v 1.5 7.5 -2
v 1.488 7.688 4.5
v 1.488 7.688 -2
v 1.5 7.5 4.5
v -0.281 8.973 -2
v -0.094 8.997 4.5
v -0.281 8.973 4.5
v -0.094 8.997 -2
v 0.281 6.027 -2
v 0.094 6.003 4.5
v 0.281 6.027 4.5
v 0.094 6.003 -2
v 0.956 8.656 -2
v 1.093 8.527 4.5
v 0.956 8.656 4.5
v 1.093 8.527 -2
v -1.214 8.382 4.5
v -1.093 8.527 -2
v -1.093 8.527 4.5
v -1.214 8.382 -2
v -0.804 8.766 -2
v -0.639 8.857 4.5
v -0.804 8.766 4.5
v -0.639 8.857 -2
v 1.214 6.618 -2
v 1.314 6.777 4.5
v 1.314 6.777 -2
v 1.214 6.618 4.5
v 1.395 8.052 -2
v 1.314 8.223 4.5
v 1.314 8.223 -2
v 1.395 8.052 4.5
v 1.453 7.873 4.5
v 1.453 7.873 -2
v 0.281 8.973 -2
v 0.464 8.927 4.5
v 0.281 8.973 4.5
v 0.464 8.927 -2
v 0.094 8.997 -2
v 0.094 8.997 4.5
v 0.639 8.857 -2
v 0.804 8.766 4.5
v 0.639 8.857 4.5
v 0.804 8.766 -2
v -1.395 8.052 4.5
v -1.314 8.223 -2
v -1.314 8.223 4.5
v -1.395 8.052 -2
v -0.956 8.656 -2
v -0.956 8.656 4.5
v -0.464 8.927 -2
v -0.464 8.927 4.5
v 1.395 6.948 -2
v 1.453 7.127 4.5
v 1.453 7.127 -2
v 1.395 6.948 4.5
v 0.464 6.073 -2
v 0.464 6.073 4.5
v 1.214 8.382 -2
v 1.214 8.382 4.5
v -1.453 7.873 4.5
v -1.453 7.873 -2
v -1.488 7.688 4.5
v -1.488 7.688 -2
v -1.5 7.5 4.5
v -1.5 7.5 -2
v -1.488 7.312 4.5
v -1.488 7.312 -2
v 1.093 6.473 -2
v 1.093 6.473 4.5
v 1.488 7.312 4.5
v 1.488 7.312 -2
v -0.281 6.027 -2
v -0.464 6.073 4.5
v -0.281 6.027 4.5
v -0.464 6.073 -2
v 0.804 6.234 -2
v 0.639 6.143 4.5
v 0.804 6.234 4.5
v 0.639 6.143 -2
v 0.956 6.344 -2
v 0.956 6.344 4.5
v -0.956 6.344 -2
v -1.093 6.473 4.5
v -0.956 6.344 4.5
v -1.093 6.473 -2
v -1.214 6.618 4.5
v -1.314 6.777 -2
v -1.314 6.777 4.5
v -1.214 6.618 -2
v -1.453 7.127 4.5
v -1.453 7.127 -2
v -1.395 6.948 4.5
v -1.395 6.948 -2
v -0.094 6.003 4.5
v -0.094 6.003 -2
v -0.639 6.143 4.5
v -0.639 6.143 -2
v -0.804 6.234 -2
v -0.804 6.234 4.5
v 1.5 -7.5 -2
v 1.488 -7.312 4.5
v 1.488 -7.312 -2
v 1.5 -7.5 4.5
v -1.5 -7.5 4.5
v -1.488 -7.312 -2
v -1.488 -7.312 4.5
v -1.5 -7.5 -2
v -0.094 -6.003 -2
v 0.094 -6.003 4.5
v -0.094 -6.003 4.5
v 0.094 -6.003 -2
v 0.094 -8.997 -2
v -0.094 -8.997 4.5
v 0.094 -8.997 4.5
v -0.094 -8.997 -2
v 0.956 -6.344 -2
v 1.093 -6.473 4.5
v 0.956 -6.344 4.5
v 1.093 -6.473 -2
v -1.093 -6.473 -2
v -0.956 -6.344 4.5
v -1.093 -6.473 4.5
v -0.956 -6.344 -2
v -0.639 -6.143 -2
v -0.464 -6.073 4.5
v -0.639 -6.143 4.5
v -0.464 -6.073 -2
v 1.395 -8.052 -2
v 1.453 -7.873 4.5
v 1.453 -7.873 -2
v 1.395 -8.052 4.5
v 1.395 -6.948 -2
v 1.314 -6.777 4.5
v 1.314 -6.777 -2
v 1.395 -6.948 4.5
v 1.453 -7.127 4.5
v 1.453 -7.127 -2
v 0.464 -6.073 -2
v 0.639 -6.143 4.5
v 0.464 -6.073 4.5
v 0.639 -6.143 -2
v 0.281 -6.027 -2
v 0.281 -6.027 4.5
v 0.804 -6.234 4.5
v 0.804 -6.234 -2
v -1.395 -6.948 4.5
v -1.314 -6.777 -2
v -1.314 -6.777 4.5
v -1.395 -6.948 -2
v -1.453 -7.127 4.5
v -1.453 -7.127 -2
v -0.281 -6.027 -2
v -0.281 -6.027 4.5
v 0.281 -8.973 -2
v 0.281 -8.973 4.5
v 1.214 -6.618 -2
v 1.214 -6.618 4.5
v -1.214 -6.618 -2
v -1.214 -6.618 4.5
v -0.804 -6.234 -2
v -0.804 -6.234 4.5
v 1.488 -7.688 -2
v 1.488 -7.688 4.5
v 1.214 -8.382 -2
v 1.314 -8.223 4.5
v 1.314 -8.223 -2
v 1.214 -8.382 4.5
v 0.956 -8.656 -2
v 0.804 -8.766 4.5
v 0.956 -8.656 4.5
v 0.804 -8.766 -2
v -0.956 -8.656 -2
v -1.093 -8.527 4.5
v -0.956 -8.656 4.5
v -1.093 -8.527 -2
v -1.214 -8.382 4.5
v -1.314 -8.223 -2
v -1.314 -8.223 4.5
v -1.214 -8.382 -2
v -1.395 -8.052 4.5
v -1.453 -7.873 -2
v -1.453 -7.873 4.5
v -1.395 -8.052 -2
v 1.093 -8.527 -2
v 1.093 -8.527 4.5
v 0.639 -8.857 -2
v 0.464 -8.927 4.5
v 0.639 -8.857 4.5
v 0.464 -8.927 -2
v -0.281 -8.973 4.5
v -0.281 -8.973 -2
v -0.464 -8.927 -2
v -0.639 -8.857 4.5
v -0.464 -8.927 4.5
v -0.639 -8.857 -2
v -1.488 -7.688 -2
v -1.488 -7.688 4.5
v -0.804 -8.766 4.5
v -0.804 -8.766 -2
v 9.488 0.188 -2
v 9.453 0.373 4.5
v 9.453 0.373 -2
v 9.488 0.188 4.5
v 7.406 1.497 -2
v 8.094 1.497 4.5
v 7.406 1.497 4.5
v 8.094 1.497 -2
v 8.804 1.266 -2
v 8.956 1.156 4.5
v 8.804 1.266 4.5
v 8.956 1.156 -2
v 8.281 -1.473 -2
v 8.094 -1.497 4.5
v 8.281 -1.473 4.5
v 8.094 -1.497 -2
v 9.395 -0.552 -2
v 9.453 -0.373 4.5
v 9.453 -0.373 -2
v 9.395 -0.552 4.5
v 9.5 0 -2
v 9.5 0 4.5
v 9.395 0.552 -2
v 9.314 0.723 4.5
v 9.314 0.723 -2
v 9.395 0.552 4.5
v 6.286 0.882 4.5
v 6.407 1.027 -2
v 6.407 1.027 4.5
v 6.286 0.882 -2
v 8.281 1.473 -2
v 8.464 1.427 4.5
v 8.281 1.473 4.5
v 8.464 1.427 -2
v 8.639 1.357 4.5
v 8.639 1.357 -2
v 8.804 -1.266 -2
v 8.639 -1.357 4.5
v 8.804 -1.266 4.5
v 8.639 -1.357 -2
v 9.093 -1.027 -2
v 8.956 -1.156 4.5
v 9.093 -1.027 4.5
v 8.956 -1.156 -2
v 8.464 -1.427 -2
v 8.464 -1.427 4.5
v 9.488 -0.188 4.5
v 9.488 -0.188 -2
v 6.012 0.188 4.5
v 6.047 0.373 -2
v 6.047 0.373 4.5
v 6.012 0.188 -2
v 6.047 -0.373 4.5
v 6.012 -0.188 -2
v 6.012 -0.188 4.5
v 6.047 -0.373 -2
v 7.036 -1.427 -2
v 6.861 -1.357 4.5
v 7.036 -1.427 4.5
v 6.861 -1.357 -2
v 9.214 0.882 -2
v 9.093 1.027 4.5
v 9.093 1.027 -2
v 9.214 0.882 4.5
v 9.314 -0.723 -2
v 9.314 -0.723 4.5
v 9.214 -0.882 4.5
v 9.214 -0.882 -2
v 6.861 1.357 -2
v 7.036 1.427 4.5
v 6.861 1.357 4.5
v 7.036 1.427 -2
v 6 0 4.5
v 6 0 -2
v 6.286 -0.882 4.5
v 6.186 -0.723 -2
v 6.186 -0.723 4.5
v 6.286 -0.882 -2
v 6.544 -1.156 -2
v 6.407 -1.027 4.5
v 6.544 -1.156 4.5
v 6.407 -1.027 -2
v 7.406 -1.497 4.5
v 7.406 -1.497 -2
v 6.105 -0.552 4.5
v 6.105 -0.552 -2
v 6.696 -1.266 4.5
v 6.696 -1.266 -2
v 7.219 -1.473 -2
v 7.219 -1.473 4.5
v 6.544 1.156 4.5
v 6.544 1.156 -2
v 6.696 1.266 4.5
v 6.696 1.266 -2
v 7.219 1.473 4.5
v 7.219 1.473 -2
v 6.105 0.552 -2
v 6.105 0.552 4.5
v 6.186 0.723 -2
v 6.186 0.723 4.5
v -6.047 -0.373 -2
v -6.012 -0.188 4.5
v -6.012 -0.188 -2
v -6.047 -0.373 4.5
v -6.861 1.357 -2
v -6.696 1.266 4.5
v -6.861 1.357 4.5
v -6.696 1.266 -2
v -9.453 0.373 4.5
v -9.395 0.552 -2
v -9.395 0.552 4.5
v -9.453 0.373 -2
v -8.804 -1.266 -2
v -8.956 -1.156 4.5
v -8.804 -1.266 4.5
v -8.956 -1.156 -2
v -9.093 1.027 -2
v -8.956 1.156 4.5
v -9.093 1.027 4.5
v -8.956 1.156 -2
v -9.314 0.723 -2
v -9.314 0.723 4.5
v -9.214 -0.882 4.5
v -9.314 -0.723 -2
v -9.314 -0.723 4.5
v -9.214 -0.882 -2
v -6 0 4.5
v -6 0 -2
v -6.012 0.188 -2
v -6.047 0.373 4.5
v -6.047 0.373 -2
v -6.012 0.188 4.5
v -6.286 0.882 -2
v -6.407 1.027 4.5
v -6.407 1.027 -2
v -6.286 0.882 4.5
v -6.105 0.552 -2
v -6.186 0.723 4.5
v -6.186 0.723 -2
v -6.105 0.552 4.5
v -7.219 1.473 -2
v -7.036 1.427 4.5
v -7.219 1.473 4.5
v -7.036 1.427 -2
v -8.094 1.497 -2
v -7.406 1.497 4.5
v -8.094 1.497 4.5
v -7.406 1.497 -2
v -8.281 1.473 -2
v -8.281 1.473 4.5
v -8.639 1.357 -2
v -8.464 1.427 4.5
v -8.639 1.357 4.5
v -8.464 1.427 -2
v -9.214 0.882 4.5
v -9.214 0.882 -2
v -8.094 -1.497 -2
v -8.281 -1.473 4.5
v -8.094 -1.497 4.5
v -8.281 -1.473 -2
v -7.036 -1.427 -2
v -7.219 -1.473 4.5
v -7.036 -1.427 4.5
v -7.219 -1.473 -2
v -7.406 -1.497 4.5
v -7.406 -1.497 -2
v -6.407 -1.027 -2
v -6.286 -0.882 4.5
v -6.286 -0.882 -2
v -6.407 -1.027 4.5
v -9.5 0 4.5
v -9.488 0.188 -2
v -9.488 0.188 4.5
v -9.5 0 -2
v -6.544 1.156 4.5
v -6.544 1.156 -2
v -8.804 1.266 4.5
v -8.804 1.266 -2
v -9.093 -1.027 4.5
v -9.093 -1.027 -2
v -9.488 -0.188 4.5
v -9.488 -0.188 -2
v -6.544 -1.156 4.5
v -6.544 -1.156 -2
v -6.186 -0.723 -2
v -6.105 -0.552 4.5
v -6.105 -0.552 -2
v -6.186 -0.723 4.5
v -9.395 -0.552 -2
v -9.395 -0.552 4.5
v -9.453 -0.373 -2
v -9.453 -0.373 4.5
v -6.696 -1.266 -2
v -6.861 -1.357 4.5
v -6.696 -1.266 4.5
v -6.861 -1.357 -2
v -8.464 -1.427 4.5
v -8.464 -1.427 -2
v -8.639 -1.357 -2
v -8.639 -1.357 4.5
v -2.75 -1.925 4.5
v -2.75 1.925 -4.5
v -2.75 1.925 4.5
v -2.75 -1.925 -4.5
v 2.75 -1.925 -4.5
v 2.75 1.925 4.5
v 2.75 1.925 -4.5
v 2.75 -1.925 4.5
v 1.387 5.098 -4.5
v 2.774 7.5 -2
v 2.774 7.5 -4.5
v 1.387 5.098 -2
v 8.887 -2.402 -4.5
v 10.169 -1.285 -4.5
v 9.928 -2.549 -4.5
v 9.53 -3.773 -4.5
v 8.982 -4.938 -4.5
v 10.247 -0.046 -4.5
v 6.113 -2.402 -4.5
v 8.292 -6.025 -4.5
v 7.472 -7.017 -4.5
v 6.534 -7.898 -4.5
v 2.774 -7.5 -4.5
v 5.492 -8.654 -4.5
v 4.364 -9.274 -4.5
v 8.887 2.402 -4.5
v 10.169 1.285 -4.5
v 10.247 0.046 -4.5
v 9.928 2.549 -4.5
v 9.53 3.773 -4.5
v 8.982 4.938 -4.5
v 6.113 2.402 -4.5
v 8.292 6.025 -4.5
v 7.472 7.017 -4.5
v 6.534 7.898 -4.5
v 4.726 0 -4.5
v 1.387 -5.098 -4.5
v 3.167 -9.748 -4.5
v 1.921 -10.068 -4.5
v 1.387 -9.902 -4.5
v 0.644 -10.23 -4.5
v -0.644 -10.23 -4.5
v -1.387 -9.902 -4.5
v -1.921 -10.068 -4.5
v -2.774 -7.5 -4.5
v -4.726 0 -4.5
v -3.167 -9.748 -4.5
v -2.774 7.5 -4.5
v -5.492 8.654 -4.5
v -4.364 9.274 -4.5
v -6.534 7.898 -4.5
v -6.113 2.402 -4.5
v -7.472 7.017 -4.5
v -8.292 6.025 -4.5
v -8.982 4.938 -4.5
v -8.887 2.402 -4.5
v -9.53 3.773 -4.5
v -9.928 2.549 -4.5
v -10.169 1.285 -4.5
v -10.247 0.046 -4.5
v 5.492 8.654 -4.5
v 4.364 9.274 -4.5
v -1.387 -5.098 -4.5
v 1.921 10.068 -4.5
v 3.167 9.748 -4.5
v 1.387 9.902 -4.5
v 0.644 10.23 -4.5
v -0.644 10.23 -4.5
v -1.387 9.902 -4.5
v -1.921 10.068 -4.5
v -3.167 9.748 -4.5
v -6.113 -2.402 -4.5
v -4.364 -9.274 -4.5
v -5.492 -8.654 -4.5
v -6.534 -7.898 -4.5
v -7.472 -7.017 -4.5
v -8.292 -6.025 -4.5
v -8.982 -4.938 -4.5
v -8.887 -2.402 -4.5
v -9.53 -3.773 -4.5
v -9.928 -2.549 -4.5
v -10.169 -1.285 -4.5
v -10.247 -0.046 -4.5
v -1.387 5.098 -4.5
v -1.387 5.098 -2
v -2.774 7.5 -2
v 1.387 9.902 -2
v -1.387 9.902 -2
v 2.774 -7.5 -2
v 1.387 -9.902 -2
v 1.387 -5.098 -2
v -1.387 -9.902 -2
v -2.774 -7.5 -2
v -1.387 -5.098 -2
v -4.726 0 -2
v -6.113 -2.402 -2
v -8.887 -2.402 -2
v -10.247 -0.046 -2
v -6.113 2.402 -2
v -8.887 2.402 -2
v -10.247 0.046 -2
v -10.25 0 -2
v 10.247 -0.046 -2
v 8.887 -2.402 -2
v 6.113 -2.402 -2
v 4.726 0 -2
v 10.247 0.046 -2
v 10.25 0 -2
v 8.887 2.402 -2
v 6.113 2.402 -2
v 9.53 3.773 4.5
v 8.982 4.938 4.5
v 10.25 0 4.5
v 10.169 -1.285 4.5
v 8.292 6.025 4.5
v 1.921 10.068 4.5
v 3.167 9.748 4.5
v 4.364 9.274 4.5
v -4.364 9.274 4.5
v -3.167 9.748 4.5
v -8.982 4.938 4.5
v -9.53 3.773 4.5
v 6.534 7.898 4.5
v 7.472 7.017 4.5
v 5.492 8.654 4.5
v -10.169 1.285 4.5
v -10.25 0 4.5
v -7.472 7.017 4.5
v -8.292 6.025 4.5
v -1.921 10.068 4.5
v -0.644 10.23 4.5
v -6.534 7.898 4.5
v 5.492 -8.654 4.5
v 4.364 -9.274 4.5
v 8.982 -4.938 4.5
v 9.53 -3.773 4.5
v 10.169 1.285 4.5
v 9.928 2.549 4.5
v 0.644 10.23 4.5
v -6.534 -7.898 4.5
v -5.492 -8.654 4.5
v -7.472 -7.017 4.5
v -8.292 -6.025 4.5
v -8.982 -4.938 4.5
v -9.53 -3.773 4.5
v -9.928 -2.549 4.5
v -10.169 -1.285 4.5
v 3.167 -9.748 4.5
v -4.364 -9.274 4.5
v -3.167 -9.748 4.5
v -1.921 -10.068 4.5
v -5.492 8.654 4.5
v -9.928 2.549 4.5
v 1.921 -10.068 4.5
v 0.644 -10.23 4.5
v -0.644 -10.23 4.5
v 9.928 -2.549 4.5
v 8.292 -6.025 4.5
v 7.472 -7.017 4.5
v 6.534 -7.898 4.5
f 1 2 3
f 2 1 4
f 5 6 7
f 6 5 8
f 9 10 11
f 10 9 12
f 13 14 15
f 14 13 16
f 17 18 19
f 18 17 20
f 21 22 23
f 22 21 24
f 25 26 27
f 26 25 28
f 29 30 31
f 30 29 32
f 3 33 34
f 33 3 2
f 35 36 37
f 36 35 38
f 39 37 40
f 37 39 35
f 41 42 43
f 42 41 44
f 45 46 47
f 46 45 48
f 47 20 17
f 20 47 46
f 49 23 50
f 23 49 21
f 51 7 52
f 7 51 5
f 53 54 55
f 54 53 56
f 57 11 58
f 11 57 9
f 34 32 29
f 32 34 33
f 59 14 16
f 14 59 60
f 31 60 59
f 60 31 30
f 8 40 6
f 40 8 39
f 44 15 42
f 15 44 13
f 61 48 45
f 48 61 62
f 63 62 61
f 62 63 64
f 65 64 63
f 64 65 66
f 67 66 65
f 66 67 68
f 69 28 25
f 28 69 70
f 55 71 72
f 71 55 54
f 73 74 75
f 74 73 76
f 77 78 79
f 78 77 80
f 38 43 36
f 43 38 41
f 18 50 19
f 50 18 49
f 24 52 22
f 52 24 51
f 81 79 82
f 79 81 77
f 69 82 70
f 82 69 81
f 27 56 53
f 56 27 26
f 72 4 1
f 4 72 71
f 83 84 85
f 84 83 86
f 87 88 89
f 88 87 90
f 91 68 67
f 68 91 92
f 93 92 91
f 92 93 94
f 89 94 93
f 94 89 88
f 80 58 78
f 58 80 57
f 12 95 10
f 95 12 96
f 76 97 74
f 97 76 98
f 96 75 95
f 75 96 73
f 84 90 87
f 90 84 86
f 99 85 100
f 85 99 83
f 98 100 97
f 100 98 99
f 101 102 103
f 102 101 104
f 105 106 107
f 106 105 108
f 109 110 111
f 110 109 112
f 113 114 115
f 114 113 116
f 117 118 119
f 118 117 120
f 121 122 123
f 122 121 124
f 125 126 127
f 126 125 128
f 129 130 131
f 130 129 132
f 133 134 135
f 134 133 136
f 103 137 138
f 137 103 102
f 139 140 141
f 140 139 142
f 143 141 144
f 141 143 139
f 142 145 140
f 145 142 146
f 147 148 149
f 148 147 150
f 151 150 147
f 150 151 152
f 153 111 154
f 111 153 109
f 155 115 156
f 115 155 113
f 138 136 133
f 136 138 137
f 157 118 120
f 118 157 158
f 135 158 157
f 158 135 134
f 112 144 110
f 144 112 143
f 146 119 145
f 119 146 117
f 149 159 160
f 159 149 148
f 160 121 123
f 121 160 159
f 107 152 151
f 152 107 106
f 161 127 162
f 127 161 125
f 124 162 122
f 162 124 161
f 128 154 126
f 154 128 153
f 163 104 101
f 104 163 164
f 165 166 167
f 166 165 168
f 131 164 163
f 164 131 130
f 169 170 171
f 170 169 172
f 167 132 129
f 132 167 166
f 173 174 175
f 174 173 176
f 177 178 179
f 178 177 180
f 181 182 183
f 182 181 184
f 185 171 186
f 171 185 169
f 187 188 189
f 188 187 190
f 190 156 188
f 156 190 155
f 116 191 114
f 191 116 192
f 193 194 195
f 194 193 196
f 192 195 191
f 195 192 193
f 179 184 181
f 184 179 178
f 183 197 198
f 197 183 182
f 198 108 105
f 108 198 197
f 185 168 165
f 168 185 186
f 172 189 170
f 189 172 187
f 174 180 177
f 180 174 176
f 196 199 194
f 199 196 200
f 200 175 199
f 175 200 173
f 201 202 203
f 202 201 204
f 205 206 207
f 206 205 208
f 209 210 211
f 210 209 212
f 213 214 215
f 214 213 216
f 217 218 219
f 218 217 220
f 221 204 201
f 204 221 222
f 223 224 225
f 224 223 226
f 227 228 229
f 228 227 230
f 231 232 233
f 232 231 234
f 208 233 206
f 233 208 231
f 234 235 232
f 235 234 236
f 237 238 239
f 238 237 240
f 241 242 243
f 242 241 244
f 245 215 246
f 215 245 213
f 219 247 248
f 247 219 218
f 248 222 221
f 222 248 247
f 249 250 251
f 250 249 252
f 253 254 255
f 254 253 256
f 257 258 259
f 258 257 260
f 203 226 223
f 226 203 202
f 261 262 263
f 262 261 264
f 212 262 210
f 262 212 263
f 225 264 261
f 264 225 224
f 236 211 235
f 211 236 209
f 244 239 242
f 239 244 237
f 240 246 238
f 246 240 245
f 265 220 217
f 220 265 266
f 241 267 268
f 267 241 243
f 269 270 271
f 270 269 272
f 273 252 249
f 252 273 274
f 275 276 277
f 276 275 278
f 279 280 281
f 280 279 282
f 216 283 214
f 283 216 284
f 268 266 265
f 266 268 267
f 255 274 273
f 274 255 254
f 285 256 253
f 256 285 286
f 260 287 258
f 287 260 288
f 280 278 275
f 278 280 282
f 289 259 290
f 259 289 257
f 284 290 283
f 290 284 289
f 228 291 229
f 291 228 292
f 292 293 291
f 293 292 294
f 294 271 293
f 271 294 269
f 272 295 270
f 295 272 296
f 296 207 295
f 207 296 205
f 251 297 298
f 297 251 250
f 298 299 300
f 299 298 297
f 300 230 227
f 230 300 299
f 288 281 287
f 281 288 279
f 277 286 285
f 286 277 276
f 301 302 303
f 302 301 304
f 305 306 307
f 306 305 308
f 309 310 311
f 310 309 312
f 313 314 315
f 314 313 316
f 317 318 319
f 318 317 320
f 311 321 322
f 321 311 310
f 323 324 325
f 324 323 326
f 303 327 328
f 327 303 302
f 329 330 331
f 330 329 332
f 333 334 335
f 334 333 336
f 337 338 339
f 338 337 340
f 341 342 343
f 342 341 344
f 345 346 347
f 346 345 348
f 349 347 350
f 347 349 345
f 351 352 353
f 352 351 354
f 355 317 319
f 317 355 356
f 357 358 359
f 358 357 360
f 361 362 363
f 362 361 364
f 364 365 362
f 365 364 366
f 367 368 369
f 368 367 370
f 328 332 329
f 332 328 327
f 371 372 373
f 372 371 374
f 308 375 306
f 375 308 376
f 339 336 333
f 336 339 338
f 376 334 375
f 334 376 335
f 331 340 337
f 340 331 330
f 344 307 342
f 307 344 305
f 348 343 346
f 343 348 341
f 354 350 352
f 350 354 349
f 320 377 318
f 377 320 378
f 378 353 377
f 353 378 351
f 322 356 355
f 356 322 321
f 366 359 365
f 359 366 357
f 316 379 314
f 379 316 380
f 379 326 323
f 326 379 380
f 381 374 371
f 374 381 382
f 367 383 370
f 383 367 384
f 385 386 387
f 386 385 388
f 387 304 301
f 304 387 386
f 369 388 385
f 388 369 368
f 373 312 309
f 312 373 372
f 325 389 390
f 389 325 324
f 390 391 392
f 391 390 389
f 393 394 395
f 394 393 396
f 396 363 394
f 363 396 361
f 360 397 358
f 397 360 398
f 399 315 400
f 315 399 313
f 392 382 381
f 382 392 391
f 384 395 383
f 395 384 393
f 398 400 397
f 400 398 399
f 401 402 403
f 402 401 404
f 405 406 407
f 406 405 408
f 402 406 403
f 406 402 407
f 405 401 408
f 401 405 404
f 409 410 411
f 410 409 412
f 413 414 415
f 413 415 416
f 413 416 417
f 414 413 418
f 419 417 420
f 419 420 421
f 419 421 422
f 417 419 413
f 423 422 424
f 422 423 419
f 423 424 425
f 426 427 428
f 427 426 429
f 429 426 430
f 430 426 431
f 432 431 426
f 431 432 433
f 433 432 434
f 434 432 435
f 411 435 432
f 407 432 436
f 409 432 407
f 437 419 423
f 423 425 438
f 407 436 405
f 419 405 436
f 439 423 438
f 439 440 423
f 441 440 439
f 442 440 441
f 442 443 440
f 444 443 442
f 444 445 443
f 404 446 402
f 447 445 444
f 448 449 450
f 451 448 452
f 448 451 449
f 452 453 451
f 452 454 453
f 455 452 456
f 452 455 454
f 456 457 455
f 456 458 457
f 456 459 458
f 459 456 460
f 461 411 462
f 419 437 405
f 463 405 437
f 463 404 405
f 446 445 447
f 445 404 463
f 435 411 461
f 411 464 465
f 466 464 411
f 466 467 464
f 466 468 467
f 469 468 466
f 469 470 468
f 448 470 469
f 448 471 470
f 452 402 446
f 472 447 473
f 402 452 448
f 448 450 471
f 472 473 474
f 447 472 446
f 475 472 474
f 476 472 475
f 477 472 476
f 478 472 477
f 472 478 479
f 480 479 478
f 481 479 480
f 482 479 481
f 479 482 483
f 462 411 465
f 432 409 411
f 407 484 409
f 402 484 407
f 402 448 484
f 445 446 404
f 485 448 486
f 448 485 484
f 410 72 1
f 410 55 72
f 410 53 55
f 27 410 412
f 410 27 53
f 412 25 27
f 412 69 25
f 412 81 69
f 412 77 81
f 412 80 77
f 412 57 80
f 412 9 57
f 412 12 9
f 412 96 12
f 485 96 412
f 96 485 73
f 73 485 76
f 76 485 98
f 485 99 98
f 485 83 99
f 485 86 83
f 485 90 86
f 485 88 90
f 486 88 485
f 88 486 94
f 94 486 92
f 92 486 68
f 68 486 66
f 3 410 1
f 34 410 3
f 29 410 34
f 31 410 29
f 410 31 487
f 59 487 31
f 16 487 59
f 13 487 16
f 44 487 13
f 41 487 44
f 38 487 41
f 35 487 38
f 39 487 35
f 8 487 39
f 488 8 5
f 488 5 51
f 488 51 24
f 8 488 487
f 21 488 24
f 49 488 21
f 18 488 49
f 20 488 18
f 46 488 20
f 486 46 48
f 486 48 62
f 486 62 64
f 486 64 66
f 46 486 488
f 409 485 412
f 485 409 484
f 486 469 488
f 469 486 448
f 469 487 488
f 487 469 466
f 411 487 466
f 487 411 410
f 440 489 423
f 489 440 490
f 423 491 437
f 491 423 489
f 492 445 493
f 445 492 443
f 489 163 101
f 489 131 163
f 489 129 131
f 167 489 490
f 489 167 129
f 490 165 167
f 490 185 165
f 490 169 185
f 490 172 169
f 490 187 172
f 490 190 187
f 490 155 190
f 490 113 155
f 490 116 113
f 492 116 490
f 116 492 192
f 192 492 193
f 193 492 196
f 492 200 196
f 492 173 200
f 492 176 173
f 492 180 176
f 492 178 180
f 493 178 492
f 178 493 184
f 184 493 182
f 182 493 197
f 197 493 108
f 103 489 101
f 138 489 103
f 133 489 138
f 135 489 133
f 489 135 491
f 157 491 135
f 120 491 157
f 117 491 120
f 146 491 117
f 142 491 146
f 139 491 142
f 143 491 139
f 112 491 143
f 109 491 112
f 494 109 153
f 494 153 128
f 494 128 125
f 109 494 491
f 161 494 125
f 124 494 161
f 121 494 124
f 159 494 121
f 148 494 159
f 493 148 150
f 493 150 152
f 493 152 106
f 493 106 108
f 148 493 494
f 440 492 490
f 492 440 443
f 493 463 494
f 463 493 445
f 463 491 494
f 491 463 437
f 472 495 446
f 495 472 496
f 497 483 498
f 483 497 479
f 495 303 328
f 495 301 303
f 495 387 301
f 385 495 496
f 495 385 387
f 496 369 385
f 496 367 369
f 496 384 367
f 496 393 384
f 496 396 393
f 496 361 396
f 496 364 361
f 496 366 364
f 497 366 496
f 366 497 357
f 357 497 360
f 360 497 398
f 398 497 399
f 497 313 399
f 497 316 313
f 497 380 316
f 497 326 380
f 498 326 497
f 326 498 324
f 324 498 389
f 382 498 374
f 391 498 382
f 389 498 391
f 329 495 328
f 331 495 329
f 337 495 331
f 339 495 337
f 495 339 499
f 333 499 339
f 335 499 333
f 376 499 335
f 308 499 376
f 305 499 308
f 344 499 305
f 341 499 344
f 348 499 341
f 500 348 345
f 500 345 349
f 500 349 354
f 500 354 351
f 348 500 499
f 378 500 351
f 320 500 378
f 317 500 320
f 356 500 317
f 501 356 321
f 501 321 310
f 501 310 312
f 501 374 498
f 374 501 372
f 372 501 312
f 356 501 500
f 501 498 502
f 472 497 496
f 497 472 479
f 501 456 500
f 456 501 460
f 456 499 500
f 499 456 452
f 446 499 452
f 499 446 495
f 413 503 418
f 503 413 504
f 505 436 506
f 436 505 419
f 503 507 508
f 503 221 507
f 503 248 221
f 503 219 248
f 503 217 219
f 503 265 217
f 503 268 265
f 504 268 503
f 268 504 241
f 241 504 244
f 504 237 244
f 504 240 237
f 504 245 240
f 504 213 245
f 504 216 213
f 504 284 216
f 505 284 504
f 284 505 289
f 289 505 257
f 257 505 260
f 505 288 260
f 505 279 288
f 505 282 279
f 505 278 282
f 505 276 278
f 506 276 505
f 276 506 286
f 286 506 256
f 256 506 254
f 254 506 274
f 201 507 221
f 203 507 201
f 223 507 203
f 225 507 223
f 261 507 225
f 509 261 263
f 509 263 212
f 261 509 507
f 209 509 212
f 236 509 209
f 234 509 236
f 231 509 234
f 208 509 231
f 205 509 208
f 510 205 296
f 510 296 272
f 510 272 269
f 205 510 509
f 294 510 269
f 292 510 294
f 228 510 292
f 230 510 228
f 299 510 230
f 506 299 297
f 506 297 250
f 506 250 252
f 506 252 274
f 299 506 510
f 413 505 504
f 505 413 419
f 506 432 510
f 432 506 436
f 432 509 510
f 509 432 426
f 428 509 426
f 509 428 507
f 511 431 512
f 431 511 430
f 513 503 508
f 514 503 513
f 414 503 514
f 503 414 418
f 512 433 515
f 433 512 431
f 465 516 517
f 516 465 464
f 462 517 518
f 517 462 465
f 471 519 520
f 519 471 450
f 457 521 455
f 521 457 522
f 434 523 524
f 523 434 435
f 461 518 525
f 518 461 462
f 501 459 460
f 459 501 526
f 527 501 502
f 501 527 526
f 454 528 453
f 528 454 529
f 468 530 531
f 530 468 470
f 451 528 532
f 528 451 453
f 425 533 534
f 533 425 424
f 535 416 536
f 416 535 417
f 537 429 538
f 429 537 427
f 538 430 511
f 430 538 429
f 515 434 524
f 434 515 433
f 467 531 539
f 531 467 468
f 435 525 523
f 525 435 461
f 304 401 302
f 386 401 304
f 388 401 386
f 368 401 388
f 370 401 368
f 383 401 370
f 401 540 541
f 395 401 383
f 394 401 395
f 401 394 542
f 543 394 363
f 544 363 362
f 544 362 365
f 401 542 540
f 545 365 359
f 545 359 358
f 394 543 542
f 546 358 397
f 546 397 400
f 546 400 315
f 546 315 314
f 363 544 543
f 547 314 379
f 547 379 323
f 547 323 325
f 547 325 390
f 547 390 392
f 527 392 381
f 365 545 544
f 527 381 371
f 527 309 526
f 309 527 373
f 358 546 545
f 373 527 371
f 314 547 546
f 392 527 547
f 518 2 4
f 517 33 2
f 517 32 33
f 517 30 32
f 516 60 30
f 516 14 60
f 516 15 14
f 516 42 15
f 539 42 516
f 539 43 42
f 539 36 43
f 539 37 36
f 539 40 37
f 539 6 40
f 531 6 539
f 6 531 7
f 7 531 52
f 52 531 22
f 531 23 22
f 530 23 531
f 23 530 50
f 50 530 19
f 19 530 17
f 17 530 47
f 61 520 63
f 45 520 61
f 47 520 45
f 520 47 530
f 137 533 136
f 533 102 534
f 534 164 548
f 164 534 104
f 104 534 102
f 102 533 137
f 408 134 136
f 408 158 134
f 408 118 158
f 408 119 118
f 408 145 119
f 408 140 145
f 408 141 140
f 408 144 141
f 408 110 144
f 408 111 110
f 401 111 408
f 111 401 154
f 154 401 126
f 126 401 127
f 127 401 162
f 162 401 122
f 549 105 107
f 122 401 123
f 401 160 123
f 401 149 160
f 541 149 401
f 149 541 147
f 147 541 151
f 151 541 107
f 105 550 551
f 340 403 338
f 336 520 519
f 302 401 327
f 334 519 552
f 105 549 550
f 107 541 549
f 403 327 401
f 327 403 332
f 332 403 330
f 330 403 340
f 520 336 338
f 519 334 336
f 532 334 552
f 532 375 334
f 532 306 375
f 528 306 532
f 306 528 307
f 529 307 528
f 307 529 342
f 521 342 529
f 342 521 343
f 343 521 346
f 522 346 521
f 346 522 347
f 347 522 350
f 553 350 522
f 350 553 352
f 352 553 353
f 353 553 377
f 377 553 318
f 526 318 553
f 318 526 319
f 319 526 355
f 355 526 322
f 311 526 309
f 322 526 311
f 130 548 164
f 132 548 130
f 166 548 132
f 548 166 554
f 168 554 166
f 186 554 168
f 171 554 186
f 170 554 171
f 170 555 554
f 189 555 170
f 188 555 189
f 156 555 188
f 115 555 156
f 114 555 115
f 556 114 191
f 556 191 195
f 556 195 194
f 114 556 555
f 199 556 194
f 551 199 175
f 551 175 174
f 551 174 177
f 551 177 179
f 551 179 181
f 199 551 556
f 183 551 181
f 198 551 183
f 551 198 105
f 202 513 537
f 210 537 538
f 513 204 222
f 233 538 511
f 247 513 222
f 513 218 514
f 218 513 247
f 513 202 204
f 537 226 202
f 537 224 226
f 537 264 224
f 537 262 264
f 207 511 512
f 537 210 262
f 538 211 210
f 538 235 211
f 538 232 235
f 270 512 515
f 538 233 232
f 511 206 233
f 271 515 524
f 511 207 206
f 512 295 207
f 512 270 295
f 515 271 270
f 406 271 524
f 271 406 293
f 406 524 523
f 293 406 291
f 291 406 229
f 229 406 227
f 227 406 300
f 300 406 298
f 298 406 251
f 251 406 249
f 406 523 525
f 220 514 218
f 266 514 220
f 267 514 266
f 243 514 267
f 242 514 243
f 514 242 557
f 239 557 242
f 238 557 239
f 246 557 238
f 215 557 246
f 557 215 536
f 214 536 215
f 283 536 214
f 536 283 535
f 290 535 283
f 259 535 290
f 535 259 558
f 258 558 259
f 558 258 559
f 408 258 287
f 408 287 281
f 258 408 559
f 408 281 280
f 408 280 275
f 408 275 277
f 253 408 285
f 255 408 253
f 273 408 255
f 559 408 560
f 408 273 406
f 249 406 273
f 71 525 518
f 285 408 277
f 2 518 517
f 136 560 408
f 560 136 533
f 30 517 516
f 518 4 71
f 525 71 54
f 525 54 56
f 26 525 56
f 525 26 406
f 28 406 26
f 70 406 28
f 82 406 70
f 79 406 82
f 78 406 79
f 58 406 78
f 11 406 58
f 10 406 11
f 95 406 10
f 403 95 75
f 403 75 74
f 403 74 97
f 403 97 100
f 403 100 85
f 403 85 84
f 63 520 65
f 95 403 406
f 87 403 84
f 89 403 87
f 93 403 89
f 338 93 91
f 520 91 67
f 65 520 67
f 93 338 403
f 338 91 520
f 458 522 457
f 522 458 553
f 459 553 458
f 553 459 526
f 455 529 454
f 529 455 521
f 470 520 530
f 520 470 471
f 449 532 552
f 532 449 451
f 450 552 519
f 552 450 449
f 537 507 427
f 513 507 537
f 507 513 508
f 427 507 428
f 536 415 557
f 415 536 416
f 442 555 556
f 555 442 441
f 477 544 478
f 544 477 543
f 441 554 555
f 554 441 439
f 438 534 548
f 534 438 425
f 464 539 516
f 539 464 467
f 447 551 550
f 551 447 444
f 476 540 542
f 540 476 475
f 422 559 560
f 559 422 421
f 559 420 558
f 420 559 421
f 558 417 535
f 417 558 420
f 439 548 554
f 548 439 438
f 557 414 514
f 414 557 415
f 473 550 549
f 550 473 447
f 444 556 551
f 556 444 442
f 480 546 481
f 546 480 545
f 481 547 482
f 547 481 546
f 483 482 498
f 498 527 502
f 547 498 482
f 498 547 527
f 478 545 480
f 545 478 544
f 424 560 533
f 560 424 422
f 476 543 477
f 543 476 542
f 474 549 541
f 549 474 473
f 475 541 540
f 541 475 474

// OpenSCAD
$fn = 50;


difference() {
	union() {
		translate(v = [0, 0, -4.5000000000]) {
			rotate(a = [0, 0, 0]) {
				cylinder(h = 9, r = 10.2500000000);
			}
		}
	}
	union() {
		translate(v = [0, 7.5000000000, -125.0000000000]) {
			rotate(a = [0, 0, 0]) {
				cylinder(h = 250, r = 1.5000000000);
			}
		}
		translate(v = [0, -7.5000000000, -125.0000000000]) {
			rotate(a = [0, 0, 0]) {
				cylinder(h = 250, r = 1.5000000000);
			}
		}
		translate(v = [7.7500000000, 0, -125.0000000000]) {
			rotate(a = [0, 0, 0]) {
				hull() {
					translate(v = [0.2500000000, 0, 0]) {
						rotate(a = [0, 0, 0]) {
							translate(v = [0, 0, 0]) {
								rotate(a = [0, 0, 0]) {
									cylinder(h = 250, r = 1.5000000000);
								}
							}
						}
					}
					translate(v = [-0.2500000000, 0, 0]) {
						rotate(a = [0, 0, 0]) {
							translate(v = [0, 0, 0]) {
								rotate(a = [0, 0, 0]) {
									cylinder(h = 250, r = 1.5000000000);
								}
							}
						}
					}
				}
			}
		}
		translate(v = [-7.7500000000, 0, -125.0000000000]) {
			rotate(a = [0, 0, 0]) {
				hull() {
					translate(v = [0.2500000000, 0, 0]) {
						rotate(a = [0, 0, 0]) {
							translate(v = [0, 0, 0]) {
								rotate(a = [0, 0, 0]) {
									cylinder(h = 250, r = 1.5000000000);
								}
							}
						}
					}
					translate(v = [-0.2500000000, 0, 0]) {
						rotate(a = [0, 0, 0]) {
							translate(v = [0, 0, 0]) {
								rotate(a = [0, 0, 0]) {
									cylinder(h = 250, r = 1.5000000000);
								}
							}
						}
					}
				}
			}
		}
		translate(v = [-2.7500000000, -1.9250000000, -50]) {
			rotate(a = [0, 0, 0]) {
				cube(size = [5.5000000000, 3.8500000000, 100]);
			}
		}
		translate(v = [0, 7.5000000000, -4.5000000000]) {
			rotate(a = [0, 0, 0]) {
				#translate(v = [0, 0, 0]) {
					rotate(a = [0, 0, 0]) {
						linear_extrude(height = 2.5000000000) {
							polygon(points = [[2.7735000000, 0.0000000000], [1.3867500000, 2.4019214574], [-1.3867500000, 2.4019214574], [-2.7735000000, 0.0000000000], [-1.3867500000, -2.4019214574], [1.3867500000, -2.4019214574]]);
						}
					}
				}
			}
		}
		translate(v = [0, -7.5000000000, -4.5000000000]) {
			rotate(a = [0, 0, 0]) {
				#translate(v = [0, 0, 0]) {
					rotate(a = [0, 0, 0]) {
						linear_extrude(height = 2.5000000000) {
							polygon(points = [[2.7735000000, 0.0000000000], [1.3867500000, 2.4019214574], [-1.3867500000, 2.4019214574], [-2.7735000000, 0.0000000000], [-1.3867500000, -2.4019214574], [1.3867500000, -2.4019214574]]);
						}
					}
				}
			}
		}
		translate(v = [-7.5000000000, 0, -4.5000000000]) {
			rotate(a = [0, 0, 0]) {
				#translate(v = [0, 0, 0]) {
					rotate(a = [0, 0, 0]) {
						linear_extrude(height = 2.5000000000) {
							polygon(points = [[2.7735000000, 0.0000000000], [1.3867500000, 2.4019214574], [-1.3867500000, 2.4019214574], [-2.7735000000, 0.0000000000], [-1.3867500000, -2.4019214574], [1.3867500000, -2.4019214574]]);
						}
					}
				}
			}
		}
		translate(v = [7.5000000000, 0, -4.5000000000]) {
			rotate(a = [0, 0, 0]) {
				#translate(v = [0, 0, 0]) {
					rotate(a = [0, 0, 0]) {
						linear_extrude(height = 2.5000000000) {
							polygon(points = [[2.7735000000, 0.0000000000], [1.3867500000, 2.4019214574], [-1.3867500000, 2.4019214574], [-2.7735000000, 0.0000000000], [-1.3867500000, -2.4019214574], [1.3867500000, -2.4019214574]]);
						}
					}
				}
			}
		}
	}
}
